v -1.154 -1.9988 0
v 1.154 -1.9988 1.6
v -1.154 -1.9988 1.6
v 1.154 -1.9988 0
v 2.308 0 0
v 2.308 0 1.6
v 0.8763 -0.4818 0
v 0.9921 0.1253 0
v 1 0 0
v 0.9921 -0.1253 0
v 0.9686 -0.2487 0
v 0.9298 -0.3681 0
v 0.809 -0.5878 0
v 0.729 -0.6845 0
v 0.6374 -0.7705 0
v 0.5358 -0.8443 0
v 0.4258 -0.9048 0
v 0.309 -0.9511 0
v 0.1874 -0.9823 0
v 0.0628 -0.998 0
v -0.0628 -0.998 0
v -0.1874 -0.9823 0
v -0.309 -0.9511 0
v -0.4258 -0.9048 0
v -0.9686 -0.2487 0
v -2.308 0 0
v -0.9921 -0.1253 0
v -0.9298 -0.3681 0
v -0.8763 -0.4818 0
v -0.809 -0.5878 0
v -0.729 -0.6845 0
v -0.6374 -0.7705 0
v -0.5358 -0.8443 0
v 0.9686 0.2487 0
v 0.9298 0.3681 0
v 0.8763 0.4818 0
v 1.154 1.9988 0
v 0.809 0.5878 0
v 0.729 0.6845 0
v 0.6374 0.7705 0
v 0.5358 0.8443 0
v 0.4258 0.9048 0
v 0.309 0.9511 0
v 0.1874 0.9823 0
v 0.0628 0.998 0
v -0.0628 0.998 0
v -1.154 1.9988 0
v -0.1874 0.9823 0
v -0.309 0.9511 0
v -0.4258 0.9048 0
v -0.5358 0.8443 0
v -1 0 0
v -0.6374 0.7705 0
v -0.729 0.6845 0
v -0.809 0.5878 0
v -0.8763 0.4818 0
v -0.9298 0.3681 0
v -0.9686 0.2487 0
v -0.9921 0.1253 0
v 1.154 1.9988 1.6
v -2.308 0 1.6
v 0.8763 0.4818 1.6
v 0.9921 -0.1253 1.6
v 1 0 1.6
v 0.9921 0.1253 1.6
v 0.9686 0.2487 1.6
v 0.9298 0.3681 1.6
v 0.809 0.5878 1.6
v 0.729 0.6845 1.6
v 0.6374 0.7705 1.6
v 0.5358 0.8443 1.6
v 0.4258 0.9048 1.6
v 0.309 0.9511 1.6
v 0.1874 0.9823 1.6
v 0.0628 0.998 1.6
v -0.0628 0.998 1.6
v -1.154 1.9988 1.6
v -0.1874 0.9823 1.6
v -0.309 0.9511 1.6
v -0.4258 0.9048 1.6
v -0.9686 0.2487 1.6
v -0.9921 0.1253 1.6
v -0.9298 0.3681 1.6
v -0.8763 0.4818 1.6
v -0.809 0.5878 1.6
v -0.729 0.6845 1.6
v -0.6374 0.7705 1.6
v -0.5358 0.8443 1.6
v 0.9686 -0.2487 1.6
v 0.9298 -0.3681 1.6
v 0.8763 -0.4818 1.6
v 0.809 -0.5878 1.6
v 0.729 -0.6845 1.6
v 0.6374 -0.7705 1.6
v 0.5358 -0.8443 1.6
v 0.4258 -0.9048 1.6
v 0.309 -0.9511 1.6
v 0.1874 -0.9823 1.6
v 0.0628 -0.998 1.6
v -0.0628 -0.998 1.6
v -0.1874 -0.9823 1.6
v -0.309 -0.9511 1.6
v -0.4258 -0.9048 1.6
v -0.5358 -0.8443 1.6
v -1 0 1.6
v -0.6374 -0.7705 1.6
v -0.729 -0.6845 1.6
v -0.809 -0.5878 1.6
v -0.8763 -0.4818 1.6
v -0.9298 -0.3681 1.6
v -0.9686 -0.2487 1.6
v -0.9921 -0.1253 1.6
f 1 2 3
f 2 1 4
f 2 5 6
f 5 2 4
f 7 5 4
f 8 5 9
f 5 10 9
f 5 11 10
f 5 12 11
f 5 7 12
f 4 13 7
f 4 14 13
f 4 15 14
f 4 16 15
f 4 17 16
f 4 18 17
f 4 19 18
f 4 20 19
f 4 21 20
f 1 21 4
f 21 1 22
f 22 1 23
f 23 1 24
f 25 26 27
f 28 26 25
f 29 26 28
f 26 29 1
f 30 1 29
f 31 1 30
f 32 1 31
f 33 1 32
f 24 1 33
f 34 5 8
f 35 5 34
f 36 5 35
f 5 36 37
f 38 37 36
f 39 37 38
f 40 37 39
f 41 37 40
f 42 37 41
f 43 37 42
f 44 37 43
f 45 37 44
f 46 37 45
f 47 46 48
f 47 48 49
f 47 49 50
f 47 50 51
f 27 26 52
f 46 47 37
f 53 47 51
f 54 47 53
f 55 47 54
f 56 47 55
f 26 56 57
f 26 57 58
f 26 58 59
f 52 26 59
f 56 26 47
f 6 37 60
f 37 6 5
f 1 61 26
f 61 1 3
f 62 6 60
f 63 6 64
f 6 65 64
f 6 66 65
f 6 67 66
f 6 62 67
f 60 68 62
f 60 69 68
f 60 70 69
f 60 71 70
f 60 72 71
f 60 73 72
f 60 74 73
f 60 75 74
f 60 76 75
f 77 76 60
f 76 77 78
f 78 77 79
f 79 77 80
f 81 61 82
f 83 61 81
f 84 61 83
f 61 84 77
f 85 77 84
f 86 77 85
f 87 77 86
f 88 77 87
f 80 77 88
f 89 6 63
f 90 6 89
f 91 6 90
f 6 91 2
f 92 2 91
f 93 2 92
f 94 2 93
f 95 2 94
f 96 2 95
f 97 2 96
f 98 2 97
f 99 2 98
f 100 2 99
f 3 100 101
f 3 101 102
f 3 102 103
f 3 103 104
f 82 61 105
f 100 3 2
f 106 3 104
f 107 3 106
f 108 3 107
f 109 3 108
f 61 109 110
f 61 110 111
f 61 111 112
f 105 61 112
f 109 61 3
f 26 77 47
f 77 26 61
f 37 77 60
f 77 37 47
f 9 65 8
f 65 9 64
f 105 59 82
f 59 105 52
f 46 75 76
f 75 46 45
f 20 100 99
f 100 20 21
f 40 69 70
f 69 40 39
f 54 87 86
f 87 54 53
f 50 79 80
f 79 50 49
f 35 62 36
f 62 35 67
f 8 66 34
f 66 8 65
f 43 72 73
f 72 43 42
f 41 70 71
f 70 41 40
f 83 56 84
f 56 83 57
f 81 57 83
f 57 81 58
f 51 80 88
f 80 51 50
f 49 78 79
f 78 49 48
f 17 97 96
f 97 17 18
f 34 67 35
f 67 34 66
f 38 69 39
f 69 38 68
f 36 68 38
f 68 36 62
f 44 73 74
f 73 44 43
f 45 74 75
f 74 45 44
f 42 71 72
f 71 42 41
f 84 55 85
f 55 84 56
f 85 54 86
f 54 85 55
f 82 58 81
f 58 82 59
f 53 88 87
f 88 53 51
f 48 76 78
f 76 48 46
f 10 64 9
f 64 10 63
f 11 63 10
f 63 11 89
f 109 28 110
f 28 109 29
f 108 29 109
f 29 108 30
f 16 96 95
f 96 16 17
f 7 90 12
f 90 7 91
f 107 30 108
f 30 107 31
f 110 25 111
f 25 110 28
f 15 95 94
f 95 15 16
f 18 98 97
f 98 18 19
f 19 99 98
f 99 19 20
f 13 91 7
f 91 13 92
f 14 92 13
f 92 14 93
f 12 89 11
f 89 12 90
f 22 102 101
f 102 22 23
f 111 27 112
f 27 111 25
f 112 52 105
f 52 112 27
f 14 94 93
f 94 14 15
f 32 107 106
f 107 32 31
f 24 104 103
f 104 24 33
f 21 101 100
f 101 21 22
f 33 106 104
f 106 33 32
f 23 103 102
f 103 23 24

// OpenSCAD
$fn = 50;


difference() {
	union() {
		translate(v = [0, 0, 0]) {
			rotate(a = [0, 0, 0]) {
				difference() {
					union() {
						linear_extrude(height = 1.6000000000) {
							polygon(points = [[2.3080000000, 0.0000000000], [1.1540000000, 1.9987866319], [-1.1540000000, 1.9987866319], [-2.3080000000, 0.0000000000], [-1.1540000000, -1.9987866319], [1.1540000000, -1.9987866319]]);
						}
					}
					union();
				}
			}
		}
	}
	union() {
		cylinder(h = 100, r = 1.0000000000);
	}
}
